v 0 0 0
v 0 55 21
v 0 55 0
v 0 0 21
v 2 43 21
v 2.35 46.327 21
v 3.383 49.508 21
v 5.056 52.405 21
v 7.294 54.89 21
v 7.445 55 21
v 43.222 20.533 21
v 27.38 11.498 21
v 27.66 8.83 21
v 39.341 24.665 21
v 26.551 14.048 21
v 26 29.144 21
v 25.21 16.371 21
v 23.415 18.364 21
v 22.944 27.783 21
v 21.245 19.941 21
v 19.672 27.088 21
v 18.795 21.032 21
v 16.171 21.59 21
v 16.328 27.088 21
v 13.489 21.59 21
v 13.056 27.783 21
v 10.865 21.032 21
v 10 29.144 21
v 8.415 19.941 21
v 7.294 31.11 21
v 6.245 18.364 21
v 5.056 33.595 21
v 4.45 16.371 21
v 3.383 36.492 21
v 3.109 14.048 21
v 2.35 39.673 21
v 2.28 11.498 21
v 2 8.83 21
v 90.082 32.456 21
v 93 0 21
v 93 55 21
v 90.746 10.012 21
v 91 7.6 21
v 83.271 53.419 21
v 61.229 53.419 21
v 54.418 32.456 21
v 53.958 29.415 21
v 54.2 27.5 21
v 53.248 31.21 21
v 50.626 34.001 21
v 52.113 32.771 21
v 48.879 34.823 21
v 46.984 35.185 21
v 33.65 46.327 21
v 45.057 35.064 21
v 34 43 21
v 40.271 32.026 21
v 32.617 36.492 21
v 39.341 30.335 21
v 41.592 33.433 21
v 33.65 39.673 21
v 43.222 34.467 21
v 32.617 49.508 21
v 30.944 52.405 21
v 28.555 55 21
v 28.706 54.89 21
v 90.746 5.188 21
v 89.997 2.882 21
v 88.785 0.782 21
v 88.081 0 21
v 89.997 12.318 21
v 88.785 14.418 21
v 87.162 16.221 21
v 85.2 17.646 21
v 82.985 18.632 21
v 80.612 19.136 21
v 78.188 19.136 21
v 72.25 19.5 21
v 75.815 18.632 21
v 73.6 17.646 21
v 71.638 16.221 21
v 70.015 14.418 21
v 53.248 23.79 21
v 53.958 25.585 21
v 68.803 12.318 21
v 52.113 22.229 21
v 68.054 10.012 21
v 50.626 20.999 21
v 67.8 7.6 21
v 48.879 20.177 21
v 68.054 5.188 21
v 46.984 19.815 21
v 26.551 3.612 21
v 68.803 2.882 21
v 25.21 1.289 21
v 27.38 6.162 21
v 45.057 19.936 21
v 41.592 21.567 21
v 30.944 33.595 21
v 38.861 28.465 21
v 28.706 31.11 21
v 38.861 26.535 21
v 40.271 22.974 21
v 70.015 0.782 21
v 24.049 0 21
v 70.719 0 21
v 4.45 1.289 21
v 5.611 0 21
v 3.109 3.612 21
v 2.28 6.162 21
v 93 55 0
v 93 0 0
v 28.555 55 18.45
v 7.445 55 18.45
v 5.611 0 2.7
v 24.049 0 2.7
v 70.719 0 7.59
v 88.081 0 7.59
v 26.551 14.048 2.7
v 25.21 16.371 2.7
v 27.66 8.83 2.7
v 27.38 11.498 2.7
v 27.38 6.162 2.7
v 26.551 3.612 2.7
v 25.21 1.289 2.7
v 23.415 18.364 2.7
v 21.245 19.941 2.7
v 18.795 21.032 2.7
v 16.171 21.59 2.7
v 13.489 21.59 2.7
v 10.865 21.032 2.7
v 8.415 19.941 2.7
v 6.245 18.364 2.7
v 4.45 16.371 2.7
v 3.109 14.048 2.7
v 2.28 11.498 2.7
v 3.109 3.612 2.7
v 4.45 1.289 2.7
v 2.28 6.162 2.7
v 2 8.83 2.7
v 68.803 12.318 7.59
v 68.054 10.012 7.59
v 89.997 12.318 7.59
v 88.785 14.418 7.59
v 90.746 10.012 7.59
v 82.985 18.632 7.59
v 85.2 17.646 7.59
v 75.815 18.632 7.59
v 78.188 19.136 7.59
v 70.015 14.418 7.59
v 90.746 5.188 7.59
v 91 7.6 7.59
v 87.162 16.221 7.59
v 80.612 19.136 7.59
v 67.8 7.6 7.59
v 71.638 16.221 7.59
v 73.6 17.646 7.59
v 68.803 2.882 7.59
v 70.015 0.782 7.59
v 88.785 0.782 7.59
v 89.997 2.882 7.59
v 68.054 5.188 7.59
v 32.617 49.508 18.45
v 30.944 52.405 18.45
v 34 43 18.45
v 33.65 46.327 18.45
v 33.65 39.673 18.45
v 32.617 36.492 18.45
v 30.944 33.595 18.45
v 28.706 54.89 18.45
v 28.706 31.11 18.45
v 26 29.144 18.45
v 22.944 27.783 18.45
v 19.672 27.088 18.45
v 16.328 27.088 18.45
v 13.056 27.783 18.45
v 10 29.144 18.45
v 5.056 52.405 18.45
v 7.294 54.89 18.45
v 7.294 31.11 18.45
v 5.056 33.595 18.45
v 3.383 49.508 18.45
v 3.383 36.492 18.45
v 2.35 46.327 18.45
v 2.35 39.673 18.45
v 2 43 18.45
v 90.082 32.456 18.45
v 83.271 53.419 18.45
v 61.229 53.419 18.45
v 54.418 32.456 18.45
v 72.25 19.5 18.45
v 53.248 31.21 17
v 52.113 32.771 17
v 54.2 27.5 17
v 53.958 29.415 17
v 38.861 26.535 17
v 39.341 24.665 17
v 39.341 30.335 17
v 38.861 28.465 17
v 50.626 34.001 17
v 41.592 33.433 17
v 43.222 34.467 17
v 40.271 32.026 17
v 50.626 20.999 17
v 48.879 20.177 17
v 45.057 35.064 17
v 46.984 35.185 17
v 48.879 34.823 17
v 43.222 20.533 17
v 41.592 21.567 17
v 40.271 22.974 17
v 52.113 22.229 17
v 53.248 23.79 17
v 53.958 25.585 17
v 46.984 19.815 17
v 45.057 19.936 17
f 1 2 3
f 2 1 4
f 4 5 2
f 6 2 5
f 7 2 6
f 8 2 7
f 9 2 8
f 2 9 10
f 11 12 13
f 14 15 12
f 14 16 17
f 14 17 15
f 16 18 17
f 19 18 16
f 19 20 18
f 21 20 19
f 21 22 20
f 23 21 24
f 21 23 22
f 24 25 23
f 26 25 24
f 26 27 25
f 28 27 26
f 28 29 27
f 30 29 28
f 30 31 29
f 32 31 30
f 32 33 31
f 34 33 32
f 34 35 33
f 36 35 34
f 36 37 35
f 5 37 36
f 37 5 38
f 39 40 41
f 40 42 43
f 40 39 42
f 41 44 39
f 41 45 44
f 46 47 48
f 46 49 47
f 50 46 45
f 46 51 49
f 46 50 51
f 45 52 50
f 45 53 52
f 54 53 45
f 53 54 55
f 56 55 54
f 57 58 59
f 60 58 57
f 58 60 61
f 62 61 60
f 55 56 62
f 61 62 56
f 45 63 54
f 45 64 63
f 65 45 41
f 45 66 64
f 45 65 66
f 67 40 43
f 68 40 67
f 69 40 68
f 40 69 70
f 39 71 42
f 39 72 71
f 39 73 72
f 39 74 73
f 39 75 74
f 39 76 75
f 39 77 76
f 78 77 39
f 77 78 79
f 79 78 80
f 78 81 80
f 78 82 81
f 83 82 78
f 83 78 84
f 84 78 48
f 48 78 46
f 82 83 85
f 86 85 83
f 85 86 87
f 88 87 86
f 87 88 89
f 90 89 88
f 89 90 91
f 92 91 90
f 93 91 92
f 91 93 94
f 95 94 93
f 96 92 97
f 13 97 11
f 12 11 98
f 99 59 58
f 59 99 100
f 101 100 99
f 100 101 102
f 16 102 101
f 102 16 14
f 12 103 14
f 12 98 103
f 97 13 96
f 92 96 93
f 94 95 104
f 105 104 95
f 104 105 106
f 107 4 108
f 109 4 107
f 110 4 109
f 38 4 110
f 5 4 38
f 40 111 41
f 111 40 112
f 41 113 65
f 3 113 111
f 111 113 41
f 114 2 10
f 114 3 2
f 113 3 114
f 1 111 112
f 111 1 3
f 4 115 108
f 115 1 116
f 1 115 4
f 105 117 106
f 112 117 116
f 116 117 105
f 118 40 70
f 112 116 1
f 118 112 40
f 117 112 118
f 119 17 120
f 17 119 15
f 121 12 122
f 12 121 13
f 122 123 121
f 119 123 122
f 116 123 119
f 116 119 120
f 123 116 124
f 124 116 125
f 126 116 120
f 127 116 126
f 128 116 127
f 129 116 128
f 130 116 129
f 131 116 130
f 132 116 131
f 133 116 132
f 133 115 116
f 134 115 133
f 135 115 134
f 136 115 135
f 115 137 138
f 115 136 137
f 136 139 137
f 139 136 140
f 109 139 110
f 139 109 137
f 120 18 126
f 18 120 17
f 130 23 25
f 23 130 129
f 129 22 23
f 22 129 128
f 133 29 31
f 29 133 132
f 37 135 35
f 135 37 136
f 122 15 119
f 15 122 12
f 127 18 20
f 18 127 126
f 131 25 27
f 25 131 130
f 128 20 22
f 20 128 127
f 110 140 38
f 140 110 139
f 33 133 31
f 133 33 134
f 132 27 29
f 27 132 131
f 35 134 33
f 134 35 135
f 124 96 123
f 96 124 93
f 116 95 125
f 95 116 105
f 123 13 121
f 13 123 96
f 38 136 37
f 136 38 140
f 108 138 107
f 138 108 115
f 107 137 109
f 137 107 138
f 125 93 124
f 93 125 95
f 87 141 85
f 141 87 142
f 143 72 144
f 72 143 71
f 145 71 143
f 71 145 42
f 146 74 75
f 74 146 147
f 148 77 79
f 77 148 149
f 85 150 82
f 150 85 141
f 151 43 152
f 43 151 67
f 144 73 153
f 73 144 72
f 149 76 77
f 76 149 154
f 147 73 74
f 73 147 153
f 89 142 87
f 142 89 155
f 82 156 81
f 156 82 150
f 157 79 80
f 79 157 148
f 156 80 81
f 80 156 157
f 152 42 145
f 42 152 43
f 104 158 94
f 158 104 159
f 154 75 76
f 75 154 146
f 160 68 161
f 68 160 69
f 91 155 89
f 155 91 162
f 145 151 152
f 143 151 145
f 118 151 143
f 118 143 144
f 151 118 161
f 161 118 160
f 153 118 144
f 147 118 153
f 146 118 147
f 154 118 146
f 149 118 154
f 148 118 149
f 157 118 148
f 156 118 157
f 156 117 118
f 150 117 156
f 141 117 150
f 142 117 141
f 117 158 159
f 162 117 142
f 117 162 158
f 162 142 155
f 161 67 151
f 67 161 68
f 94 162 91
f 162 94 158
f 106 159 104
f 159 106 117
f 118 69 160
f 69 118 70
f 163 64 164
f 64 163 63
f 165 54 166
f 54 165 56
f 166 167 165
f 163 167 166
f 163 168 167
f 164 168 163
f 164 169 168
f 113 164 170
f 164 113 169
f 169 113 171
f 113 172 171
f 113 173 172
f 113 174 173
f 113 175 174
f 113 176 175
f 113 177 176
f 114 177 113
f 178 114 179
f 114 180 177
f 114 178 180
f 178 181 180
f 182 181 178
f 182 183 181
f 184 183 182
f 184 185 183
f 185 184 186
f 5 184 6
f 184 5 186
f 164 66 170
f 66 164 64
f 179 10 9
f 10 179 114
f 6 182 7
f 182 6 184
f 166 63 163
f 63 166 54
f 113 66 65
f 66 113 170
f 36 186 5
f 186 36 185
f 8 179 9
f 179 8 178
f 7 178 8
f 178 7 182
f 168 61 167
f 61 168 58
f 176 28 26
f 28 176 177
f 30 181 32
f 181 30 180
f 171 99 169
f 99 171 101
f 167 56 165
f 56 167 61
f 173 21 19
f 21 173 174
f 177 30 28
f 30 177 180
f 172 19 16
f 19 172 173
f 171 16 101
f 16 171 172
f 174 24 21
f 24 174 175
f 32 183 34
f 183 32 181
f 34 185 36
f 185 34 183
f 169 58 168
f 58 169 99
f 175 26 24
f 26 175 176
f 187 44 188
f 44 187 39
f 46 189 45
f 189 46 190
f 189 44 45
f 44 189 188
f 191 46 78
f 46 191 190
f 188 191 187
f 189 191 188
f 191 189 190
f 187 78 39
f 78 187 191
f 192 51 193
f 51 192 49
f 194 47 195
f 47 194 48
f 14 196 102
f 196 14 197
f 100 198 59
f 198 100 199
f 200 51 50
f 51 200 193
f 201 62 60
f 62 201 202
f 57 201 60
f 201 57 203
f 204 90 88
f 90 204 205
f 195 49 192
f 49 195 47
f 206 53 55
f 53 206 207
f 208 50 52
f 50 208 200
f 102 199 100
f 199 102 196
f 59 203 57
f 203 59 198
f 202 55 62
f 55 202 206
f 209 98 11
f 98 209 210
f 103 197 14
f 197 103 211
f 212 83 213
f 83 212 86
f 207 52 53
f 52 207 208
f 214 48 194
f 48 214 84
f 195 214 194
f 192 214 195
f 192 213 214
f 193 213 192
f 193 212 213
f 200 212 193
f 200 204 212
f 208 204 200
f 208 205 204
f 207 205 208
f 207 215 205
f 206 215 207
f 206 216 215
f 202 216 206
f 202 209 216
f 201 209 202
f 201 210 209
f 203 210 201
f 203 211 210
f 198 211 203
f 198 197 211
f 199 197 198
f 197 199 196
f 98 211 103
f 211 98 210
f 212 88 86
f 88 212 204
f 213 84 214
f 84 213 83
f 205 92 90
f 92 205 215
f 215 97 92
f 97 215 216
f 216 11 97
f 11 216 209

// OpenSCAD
length = 93;
width = 55;
height = 21;

//Based on magnet size:
magnetBaseInnerDiameter = 15.4;
magnetHeight = 4.0;

//  medical tokens 2.02 thick 9 tokens total 18.3 thick 25.16 diameter
//	admin tokens 2.15 thick 6 tokens 12.91 thick 22.7 diameter
//	chief of staff 2.05 thick 31.5 diameter
//	star token 2.05 thick 33.18wi 

medicalTokenDiameter = 25.16 + .5;
medicalTokenOffset = 4;
medicalTokenHeight = 18.3;

adminTokenDiameter = 22.7 + .5;
adminTokenOffset = 4;
adminTokenHeight = 12.91 + .5;

chiefTokenDiameter = 31.5 + .5;
chiefTokenOffset = 4;
chiefTokenHeight = 2.05 + .5;

starTokenDiameter = 37 + .5;
starTokenOffset = 2;
starTokenHeight = 2.05 + .5;

spaceBetweenCircles = 2;

difference(){
    cube([length, width, height]);

    translate(
        [
            spaceBetweenCircles + medicalTokenDiameter/2,  
            medicalTokenDiameter/2 - medicalTokenOffset,
            height - medicalTokenHeight
        ])
        cylinder(medicalTokenHeight, d=medicalTokenDiameter);


    
    
    
    translate(
        [
            length - (adminTokenDiameter/2 + spaceBetweenCircles),
            adminTokenDiameter/2 - adminTokenOffset,
            height - adminTokenHeight
        ])
        cylinder(adminTokenHeight, d=adminTokenDiameter);
    
    
    
    
    translate(
        [
            spaceBetweenCircles + chiefTokenDiameter/2,
            width - (chiefTokenDiameter/2 - chiefTokenOffset),
            height - chiefTokenHeight
        ])
        cylinder(chiefTokenHeight, d=chiefTokenDiameter);


    translate(
        [
            length - (starTokenDiameter/2 + spaceBetweenCircles),
            width - (starTokenDiameter/2 - starTokenOffset),
            height - starTokenHeight
        ])
       rotate([0, 0, -18])
    
            cylinder(starTokenHeight, d=starTokenDiameter, $fn=5);
   


        
    translate([length/2, width/2, height - magnetHeight])
        cylinder(magnetHeight, d=magnetBaseInnerDiameter);
        

}
